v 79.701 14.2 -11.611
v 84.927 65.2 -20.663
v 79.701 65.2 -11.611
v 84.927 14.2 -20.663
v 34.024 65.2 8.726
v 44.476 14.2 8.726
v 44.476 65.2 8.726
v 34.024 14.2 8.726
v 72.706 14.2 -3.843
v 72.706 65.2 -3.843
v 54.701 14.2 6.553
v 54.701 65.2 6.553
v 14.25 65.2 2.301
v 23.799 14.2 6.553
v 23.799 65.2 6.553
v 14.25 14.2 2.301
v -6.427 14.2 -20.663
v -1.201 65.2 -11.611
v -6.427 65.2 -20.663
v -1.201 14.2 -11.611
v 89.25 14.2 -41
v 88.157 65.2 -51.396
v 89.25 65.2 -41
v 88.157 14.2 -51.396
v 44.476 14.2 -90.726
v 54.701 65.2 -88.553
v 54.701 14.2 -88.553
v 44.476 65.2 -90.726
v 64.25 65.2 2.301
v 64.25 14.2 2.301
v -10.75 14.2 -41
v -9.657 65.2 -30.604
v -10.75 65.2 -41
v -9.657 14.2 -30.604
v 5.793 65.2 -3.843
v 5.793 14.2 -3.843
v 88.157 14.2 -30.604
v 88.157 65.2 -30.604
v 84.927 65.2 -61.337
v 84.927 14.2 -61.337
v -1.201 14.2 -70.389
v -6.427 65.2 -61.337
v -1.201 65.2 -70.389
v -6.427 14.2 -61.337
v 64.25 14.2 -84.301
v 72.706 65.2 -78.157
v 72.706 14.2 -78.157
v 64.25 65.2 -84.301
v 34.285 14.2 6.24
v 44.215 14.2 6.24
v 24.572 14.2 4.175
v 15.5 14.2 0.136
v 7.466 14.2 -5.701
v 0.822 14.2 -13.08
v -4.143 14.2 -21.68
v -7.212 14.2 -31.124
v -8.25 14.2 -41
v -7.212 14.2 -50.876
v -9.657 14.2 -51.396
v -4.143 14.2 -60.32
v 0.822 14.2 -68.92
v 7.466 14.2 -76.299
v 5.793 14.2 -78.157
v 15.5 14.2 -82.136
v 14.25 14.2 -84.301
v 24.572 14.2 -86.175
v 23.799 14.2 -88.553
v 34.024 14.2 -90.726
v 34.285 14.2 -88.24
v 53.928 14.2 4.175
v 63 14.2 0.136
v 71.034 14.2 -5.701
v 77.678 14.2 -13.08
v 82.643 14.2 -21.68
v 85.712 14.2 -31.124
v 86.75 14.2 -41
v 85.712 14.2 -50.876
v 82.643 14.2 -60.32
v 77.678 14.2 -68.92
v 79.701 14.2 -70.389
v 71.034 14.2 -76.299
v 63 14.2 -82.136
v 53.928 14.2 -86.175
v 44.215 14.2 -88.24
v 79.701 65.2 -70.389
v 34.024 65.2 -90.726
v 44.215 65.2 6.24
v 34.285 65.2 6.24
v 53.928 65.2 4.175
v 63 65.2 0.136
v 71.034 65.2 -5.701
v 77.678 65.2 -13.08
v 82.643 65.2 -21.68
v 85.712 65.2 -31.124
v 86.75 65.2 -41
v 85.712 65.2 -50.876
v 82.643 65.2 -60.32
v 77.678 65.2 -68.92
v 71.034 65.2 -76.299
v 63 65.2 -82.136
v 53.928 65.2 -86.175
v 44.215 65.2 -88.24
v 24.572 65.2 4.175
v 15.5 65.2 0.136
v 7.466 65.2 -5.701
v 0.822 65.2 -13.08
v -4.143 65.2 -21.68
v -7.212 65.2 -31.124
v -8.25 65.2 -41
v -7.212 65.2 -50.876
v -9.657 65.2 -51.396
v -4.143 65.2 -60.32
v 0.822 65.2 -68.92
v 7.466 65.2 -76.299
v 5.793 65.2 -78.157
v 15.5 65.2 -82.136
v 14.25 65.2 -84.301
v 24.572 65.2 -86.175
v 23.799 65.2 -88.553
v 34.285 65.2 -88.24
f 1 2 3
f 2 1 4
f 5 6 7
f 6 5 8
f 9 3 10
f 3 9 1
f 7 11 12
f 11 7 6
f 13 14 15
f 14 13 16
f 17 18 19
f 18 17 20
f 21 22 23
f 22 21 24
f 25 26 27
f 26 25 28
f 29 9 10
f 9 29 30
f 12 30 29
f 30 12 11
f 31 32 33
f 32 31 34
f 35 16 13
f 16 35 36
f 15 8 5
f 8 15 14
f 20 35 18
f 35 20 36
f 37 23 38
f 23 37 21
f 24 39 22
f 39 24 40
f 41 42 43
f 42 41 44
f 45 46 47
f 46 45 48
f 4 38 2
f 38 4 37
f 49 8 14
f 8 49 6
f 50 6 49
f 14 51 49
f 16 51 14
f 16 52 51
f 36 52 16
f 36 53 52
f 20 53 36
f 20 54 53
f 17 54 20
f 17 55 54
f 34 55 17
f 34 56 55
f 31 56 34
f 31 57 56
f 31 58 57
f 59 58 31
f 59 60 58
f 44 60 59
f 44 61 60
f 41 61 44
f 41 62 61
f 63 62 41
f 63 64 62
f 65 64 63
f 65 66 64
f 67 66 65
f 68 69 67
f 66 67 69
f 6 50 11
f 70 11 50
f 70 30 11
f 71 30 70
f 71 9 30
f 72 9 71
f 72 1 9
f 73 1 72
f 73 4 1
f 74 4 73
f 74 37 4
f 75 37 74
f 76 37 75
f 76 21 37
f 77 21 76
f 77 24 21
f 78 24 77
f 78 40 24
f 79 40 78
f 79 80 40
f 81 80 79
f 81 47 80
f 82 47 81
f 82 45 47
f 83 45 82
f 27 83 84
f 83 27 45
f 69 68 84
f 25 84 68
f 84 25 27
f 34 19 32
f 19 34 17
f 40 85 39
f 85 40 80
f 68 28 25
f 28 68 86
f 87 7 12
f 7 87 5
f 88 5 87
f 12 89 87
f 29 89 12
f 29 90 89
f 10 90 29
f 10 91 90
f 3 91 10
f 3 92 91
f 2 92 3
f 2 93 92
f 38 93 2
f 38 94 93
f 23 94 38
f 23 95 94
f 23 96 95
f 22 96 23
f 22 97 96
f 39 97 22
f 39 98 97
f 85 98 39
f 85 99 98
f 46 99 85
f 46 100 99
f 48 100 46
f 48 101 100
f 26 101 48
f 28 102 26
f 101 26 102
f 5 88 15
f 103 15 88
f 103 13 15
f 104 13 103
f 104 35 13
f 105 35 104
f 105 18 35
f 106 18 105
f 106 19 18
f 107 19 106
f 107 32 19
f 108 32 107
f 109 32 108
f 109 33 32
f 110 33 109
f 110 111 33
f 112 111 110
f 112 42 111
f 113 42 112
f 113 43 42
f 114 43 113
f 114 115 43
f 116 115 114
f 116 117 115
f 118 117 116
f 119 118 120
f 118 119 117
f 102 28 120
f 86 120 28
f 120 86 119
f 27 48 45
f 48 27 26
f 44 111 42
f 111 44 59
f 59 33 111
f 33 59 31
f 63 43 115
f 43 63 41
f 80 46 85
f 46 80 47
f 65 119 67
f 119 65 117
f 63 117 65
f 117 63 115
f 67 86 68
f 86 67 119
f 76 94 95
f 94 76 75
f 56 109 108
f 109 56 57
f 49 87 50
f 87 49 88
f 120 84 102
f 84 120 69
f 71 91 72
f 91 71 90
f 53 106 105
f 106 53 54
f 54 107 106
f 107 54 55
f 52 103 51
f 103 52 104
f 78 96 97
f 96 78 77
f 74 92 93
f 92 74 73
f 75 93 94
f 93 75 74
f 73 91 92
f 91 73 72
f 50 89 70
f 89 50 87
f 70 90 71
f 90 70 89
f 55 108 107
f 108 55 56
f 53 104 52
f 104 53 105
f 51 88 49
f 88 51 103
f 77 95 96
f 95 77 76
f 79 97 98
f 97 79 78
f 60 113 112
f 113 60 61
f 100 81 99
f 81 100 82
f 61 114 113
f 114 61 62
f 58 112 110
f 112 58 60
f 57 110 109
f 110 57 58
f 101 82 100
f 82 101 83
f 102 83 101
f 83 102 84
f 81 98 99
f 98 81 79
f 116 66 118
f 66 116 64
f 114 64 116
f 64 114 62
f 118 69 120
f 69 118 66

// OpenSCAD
//difference() {
//importBPouch();
//cut();
cylinderCut();
//}

module importBPouch() {
translate([39.3,79.7,-130.758])
rotate([90,0,0])
import("bpouch__fixed.stl");
}

module cut() {
x = 78.5;
y = 79.4;

translate([(x-60)/2,(y-51)/2,-1])
color("red")
cube ([60,51,10]);

// para achar o tamanho do objeto
//translate([0,0,-0.5])
//color("green")
//cube ([78.5,79.4,20]);
}

module cylinderCut() {
x = 78.5;
y = 79.4;
di = 100;

translate([x/2,(y+51)/2,-41])
rotate([90,0,0])
color("green")
difference() {
cylinder(h=51, d=di);
translate([0,0,-1])
cylinder(h=53, d=di-5);
}
}
